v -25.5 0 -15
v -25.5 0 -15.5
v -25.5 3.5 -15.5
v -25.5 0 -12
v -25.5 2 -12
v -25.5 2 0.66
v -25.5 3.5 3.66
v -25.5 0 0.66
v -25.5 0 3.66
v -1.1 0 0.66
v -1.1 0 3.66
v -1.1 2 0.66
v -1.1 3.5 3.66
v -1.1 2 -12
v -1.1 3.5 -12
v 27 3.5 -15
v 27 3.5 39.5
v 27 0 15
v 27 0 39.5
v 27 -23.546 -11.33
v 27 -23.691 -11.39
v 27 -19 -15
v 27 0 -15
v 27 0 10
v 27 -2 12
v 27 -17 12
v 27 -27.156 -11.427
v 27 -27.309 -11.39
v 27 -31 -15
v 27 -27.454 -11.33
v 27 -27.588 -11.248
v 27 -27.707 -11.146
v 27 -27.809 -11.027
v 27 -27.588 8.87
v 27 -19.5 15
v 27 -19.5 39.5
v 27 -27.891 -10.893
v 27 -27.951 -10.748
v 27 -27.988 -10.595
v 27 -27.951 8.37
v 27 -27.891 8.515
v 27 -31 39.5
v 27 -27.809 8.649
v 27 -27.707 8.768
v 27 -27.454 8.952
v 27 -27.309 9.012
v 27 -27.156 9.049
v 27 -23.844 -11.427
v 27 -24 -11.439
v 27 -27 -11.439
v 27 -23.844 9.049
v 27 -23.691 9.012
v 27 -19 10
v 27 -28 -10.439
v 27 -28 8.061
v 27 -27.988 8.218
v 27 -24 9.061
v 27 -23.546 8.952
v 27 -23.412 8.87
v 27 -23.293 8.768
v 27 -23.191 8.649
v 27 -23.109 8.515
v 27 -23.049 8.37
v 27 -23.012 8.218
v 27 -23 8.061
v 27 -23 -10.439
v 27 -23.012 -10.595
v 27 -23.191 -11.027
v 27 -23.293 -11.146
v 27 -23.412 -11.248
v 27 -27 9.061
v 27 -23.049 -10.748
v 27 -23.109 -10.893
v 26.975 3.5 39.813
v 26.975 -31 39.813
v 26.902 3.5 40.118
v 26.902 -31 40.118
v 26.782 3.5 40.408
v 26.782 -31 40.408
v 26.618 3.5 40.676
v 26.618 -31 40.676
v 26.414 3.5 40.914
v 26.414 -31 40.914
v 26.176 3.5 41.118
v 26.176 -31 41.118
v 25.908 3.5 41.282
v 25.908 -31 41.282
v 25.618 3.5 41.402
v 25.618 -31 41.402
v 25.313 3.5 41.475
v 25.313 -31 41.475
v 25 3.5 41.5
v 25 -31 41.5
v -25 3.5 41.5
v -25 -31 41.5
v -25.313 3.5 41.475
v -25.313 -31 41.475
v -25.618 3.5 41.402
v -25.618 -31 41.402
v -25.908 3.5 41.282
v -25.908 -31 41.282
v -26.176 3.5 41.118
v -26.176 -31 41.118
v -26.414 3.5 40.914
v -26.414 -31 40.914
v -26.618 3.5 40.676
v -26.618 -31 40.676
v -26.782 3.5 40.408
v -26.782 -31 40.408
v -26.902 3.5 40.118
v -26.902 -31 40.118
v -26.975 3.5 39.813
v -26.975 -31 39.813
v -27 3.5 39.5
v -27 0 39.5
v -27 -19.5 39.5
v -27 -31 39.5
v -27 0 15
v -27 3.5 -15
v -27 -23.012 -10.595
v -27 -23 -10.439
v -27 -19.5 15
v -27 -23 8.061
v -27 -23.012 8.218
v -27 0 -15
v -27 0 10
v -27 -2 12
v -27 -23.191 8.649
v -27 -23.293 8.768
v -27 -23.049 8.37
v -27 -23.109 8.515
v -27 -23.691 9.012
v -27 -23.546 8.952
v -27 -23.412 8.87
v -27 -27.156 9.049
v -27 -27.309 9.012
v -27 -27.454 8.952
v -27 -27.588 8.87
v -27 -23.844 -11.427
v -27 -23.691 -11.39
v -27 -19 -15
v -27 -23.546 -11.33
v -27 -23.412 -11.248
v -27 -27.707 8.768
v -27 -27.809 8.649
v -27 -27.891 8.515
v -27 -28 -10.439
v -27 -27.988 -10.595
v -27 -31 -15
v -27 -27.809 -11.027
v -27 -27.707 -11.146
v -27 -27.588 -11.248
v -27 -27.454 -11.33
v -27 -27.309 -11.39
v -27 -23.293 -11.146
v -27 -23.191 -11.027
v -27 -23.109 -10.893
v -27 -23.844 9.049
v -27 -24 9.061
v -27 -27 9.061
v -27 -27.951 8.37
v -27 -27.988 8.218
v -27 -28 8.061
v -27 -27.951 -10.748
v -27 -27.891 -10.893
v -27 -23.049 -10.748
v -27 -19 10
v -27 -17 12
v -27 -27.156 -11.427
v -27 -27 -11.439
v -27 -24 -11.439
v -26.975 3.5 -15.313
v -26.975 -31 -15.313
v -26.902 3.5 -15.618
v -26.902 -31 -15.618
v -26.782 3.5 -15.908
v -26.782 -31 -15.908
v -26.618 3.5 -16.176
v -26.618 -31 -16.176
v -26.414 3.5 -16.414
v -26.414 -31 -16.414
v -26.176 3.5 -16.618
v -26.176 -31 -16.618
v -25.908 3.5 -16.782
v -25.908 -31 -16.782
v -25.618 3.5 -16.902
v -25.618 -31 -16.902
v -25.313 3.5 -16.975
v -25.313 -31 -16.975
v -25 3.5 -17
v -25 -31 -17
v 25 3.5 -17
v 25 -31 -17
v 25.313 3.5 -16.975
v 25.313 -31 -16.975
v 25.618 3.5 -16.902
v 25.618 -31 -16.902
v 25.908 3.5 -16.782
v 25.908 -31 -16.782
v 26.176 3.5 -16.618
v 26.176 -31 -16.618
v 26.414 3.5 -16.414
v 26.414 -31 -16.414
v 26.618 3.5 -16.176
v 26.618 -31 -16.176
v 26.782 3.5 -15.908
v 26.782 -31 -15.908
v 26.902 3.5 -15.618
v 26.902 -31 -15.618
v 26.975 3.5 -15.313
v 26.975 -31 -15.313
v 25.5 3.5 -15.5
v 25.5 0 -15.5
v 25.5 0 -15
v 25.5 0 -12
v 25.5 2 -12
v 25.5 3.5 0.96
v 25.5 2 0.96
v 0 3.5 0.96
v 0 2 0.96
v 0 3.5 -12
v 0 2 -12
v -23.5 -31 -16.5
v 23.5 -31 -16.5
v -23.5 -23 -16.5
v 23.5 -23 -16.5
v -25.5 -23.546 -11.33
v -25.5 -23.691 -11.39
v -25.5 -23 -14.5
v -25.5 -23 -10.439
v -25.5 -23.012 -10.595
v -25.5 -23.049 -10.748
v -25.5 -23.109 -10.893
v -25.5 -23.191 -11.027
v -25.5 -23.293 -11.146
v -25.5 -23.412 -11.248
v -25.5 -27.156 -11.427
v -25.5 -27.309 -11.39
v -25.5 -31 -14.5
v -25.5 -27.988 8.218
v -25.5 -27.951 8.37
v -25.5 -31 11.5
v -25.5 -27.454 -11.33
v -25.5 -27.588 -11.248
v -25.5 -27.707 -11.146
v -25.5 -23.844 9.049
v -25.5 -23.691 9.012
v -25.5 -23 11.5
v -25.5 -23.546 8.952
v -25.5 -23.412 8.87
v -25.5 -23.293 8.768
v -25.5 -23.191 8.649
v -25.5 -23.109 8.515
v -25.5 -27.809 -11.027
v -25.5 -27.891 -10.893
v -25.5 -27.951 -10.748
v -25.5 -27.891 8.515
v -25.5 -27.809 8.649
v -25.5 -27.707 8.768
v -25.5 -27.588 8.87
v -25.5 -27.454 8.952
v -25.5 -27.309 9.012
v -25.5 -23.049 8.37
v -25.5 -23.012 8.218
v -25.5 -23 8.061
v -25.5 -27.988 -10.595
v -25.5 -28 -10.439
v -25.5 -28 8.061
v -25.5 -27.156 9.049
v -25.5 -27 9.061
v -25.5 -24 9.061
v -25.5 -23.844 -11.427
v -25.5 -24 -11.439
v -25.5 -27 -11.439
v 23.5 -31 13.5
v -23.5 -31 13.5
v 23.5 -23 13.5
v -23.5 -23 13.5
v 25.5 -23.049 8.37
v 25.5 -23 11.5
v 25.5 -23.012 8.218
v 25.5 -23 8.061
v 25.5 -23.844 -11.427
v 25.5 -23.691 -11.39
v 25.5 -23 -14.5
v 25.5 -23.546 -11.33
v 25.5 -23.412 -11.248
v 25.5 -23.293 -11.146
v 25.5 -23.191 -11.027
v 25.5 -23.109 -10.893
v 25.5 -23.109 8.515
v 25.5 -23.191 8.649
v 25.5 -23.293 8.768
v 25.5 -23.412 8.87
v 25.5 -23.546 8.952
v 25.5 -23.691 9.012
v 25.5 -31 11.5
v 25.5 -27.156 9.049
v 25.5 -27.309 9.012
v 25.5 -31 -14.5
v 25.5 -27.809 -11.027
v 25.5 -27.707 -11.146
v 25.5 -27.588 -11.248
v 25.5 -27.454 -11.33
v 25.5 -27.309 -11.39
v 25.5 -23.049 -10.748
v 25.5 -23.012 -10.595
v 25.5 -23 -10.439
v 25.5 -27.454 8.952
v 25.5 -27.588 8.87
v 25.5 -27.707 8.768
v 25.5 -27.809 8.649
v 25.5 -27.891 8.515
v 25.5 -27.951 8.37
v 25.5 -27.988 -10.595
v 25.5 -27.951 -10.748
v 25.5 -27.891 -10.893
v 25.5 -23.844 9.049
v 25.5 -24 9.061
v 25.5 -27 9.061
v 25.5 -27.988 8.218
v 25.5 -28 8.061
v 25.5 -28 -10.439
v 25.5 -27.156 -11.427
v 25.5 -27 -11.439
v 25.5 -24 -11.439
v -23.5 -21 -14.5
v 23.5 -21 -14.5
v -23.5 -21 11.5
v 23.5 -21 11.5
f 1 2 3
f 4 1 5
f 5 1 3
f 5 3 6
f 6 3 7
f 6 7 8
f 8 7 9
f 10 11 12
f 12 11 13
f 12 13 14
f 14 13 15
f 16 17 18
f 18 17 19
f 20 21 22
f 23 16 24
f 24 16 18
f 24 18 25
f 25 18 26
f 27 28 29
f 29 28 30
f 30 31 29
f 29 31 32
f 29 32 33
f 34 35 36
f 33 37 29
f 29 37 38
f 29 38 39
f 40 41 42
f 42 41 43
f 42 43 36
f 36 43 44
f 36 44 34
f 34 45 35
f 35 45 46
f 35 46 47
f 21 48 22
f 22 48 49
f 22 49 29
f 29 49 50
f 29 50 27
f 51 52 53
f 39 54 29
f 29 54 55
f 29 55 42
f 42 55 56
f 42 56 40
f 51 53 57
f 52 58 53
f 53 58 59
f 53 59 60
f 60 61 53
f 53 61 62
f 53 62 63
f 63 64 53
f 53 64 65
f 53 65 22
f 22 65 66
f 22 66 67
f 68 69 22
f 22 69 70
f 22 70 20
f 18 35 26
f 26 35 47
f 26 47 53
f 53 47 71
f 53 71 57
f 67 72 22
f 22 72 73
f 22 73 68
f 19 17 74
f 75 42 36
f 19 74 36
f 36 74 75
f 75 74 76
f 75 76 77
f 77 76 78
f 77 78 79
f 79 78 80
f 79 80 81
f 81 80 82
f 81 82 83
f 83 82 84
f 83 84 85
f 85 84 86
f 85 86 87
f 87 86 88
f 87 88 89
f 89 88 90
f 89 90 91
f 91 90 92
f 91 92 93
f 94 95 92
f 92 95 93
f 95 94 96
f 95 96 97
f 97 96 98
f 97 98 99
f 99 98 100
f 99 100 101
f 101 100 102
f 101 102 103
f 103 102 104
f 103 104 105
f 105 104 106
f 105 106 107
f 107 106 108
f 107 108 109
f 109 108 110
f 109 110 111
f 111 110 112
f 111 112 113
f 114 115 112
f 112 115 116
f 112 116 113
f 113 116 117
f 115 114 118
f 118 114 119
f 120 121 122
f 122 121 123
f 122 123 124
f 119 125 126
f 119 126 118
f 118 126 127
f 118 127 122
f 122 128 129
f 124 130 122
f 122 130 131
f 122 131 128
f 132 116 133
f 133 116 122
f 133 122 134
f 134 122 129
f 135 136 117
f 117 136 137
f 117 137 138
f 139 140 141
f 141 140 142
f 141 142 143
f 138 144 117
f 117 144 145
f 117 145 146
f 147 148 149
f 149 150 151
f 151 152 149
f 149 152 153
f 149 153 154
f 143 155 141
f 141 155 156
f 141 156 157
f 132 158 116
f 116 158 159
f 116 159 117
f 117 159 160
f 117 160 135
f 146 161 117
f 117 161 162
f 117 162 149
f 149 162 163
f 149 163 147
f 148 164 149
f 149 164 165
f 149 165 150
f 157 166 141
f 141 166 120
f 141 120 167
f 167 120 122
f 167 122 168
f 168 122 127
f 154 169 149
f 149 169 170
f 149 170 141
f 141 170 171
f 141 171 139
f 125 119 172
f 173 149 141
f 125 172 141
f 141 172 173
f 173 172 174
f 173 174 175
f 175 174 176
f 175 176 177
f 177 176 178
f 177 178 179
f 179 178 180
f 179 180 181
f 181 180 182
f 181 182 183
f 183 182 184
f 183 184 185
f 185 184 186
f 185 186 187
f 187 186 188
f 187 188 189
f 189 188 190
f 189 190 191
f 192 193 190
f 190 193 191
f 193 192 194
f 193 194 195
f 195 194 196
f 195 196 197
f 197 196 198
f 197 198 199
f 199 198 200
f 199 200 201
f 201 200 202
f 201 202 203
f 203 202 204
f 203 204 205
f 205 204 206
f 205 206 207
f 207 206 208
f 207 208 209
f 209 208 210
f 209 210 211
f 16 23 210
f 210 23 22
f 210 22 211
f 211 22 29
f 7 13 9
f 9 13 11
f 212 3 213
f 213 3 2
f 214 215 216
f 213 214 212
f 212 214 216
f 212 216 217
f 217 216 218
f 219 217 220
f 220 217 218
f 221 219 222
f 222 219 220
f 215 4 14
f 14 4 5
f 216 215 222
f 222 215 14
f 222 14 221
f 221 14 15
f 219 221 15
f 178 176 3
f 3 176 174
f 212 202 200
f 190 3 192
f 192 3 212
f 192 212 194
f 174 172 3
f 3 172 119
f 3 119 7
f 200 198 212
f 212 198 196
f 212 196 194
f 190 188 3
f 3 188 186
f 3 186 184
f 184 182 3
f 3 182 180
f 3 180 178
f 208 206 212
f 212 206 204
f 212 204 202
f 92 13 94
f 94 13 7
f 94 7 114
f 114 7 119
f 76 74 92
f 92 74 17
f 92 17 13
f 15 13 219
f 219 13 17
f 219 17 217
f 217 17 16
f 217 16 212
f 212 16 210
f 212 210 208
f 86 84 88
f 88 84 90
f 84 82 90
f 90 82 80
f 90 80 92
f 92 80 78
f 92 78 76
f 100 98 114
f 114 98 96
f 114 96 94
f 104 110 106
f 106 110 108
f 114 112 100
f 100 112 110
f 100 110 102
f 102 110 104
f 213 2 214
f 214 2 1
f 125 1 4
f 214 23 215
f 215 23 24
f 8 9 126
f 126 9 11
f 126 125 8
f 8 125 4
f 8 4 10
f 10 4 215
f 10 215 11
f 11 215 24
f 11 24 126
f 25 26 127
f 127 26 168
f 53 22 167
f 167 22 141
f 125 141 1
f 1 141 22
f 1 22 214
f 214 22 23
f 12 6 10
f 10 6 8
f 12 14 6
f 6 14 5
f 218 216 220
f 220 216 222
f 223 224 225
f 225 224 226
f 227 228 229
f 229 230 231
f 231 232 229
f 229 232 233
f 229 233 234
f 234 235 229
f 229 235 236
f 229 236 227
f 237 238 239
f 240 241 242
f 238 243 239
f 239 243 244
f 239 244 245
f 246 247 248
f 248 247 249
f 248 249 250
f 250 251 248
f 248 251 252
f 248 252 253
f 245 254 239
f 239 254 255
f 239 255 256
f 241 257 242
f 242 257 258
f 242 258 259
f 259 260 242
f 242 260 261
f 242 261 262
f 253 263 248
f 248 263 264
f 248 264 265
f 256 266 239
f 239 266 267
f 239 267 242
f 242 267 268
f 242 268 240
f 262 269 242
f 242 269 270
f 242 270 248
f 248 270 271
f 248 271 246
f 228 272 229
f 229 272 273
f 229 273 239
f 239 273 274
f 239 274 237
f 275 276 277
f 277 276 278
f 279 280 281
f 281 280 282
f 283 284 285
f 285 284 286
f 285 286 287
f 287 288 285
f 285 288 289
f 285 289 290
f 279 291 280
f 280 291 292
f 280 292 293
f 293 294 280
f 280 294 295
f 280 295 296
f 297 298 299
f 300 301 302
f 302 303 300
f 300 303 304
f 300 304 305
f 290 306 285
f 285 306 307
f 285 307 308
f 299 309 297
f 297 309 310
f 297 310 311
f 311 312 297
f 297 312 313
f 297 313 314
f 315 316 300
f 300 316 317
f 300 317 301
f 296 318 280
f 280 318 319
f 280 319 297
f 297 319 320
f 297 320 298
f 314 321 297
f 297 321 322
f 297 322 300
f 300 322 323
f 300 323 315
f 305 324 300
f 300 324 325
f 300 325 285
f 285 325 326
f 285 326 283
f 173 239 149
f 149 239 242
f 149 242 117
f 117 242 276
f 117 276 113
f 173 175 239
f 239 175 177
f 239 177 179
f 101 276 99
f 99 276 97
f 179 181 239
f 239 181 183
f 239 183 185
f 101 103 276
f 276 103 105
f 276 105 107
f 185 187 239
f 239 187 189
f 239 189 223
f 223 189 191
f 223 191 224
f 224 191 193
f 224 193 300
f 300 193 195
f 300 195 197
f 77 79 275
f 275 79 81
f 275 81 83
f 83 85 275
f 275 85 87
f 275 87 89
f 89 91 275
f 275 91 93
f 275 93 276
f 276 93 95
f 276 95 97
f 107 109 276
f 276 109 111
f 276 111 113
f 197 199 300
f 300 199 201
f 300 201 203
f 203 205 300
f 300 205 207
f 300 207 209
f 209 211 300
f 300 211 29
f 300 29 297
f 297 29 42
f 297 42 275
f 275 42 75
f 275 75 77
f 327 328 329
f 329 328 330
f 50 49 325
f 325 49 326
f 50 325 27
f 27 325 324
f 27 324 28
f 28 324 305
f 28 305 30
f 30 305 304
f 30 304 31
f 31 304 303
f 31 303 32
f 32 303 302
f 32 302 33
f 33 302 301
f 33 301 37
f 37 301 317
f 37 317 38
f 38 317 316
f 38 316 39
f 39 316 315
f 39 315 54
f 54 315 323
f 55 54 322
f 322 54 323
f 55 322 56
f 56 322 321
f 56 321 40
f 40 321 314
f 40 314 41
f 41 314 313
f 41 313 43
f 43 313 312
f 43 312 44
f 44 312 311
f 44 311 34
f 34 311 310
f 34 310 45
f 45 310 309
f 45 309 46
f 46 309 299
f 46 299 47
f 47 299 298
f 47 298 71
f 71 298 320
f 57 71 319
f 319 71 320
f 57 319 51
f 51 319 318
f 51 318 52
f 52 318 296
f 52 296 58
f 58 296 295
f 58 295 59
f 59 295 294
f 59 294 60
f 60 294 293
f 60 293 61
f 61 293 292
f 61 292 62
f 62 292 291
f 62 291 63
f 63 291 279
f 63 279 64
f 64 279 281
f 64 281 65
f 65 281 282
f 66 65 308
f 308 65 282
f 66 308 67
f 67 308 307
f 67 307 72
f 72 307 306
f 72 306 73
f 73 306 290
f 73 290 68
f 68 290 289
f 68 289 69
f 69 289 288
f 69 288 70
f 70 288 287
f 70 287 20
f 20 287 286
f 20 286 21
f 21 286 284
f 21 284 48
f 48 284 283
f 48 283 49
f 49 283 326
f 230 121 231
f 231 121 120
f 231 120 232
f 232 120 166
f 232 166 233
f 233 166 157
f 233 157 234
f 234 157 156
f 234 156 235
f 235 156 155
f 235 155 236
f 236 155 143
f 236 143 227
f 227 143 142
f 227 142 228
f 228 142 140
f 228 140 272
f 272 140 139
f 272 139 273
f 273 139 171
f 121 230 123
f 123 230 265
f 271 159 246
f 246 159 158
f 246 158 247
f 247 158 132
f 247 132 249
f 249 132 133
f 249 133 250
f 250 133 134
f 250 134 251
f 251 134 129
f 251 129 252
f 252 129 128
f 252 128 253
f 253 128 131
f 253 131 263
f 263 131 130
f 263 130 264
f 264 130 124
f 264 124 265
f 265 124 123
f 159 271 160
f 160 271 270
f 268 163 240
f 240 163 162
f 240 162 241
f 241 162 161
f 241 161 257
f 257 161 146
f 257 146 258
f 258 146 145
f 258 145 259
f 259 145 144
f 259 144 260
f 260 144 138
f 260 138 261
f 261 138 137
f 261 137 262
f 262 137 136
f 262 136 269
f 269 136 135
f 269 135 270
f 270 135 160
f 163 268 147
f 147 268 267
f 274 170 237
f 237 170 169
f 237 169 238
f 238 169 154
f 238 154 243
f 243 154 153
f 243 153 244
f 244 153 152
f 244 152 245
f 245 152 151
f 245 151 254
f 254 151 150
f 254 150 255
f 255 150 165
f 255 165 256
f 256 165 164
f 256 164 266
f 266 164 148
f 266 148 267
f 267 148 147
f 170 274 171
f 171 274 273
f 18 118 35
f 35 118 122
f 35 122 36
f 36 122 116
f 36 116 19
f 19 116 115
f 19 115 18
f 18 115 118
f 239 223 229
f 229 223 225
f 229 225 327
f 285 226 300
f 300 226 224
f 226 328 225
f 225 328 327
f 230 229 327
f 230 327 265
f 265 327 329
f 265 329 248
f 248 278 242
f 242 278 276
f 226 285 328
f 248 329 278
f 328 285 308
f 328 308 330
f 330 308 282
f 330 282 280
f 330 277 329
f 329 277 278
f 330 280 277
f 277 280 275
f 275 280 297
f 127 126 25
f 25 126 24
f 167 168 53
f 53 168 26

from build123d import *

# Parameters (mm, degrees)
BOSS_EXTRUDE4_DEPTH = 21
BOSS_EXTRUDE5_START = 3.5
BOSS_EXTRUDE5_DEPTH = 3.5
SKETCH4_W           = 27
SKETCH4_H           = 19
CUT_EXTRUDE4_DEPTH  = 72.268857154
SKETCH3_5_W         = 24.4
SKETCH3_5_H         = 12.66
BOSS_EXTRUDE6_DEPTH = 2
SKETCH5_W           = 51
SKETCH5_H           = 30
BOSS_EXTRUDE7_DEPTH = 10
CUT_EXTRUDE5_DEPTH  = 75.828136419
CUT_EXTRUDE6_REACH  = 76.828
SKETCH8_W           = 24.5
SKETCH8_H           = 19.5
CHAMFER1_SIZE       = 2


with BuildPart() as part:
    # Sketch3 → Boss-Extrude4 (new body)
    with BuildSketch(Plane(origin=(0, 0, 0), x_dir=(1, 0, 0), z_dir=(0, 1, 0))):
        with BuildLine():
            Line((-27, 15), (-27, -39.5))
            ThreePointArc((-27, -39.5), (-26.414213562, -40.914213562), (-25, -41.5))
            Line((-25, -41.5), (25, -41.5))
            ThreePointArc((25, -41.5), (26.414213562, -40.914213562), (27, -39.5))
            Line((27, -39.5), (27, 15))
            ThreePointArc((27, 15), (26.414213562, 16.414213562), (25, 17))
            Line((25, 17), (-25, 17))
            ThreePointArc((-25, 17), (-26.414213562, 16.414213562), (-27, 15))
        make_face()
    extrude(amount=-BOSS_EXTRUDE4_DEPTH)

    # Sketch3<3> → Boss-Extrude5 (add)
    with BuildSketch(Plane(origin=(0, 0, 0), x_dir=(1, 0, 0), z_dir=(0, 1, 0)).offset(BOSS_EXTRUDE5_START)):
        with BuildLine():
            Line((-27, 15), (-27, -39.5))
            ThreePointArc((-27, -39.5), (-26.414213562, -40.914213562), (-25, -41.5))
            Line((-25, -41.5), (25, -41.5))
            ThreePointArc((25, -41.5), (26.414213562, -40.914213562), (27, -39.5))
            Line((27, -39.5), (27, 15))
            ThreePointArc((27, 15), (26.414213562, 16.414213562), (25, 17))
            Line((25, 17), (-25, 17))
            ThreePointArc((-25, 17), (-26.414213562, 16.414213562), (-27, 15))
        make_face()
        Polygon((0, 12), (-1.1, 12), (-1.1, -3.66), (-25.5, -3.66), (-25.5, 15.5), (25.5, 15.5), (25.5, -0.96), (0, -0.96), align=None, mode=Mode.SUBTRACT)
    extrude(amount=-BOSS_EXTRUDE5_DEPTH)

    # Sketch4 → Cut-Extrude4 (cut, through all)
    with BuildSketch(Plane.ZY.offset(27)):
        with Locations((-1.5, -9.5)):
            Rectangle(SKETCH4_W, SKETCH4_H)
    extrude(amount=-CUT_EXTRUDE4_DEPTH, mode=Mode.SUBTRACT)

    # Sketch3<5> → Boss-Extrude6 (add)
    with BuildSketch(Plane(origin=(0, 0, 0), x_dir=(1, 0, 0), z_dir=(0, 1, 0))):
        with Locations((-13.3, 5.67)):
            Rectangle(SKETCH3_5_W, SKETCH3_5_H)
        Polygon((25.5, 12), (0, 12), (0, -0.96), (25.5, -0.96), (25.5, -0.5), align=None)
    extrude(amount=BOSS_EXTRUDE6_DEPTH)

    # Sketch5 → Boss-Extrude7 (add)
    # profile 1 of 2: a face of its own
    with BuildSketch(Plane.XZ.offset(21)):
        with BuildLine():
            ThreePointArc((25, -17), (26.414213562, -16.414213562), (27, -15))
            Line((27, -15), (27, 39.5))
            ThreePointArc((27, 39.5), (26.414213562, 40.914213562), (25, 41.5))
            Line((25, 41.5), (-25, 41.5))
            ThreePointArc((-25, 41.5), (-26.414213562, 40.914213562), (-27, 39.5))
            Line((-27, 39.5), (-27, -15))
            ThreePointArc((-27, -15), (-26.414213562, -16.414213562), (-25, -17))
            Line((-25, -17), (25, -17))
        make_face()
        with Locations((0, -1.5)):
            Rectangle(SKETCH5_W, SKETCH5_H, mode=Mode.SUBTRACT)
    # profile 2 of 2: a face of its own
    with BuildSketch(Plane.XZ.offset(21)):
        with BuildLine():
            ThreePointArc((25, -17), (26.414213562, -16.414213562), (27, -15))
            Line((27, -15), (27, 39.5))
            ThreePointArc((27, 39.5), (26.414213562, 40.914213562), (25, 41.5))
            Line((25, 41.5), (-25, 41.5))
            ThreePointArc((-25, 41.5), (-26.414213562, 40.914213562), (-27, 39.5))
            Line((-27, 39.5), (-27, -15))
            ThreePointArc((-27, -15), (-26.414213562, -16.414213562), (-25, -17))
            Line((-25, -17), (25, -17))
        make_face()
        with Locations((0, -1.5)):
            Rectangle(SKETCH5_W, SKETCH5_H, mode=Mode.SUBTRACT)
    extrude(amount=BOSS_EXTRUDE7_DEPTH)

    # Sketch6 → Cut-Extrude5 (cut, through all)
    with BuildSketch(Plane.ZY.offset(27)):
        with BuildLine():
            Line((-10.438825699, -23), (8.061174301, -23))
            ThreePointArc((8.061174301, -23), (8.768281082, -23.292893219), (9.061174301, -24))
            Line((9.061174301, -24), (9.061174301, -27))
            ThreePointArc((9.061174301, -27), (8.768281082, -27.707106781), (8.061174301, -28))
            Line((8.061174301, -28), (-10.438825699, -28))
            ThreePointArc((-10.438825699, -28), (-11.14593248, -27.707106781), (-11.438825699, -27))
            Line((-11.438825699, -27), (-11.438825699, -24))
            ThreePointArc((-11.438825699, -24), (-11.14593248, -23.292893219), (-10.438825699, -23))
        make_face()
    extrude(amount=-CUT_EXTRUDE5_DEPTH, mode=Mode.SUBTRACT)

    # Sketch8 → Cut-Extrude6 (cut, up to next)
    with BuildSketch(Plane(origin=(27, 0, 0), x_dir=(0, 0, -1), z_dir=(1, 0, 0)), mode=Mode.PRIVATE) as cut_extrude6_sk1:
        with Locations((-27.25, -9.75)):
            Rectangle(SKETCH8_W, SKETCH8_H)
    cut_extrude6_tool1 = extrude(cut_extrude6_sk1.sketch, amount=-CUT_EXTRUDE6_REACH, mode=Mode.PRIVATE) & part.part
    add(cut_extrude6_tool1.solids().sort_by_distance((27, -9.75, 27.25))[0], mode=Mode.SUBTRACT)

    # Chamfer1
    chamfer1_edges = [part.edges().sort_by_distance(p)[0] for p in [
        (25.5, -26, -16.5),
        (-25.5, -21, -1.5),
        (-25.5, -26, -16.5),
        (0, -21, 13.5),
        (-25.5, -26, 13.5),
        (25.5, -26, 13.5),
        (0, -21, -16.5),
        (25.5, -21, -1.5),
        (0, 0, 12),
        (0, -19, 12),
    ]]
    chamfer(chamfer1_edges, length=CHAMFER1_SIZE - 0.0001)  # a hair under: the kernel refuses the full size


solid = part.part
